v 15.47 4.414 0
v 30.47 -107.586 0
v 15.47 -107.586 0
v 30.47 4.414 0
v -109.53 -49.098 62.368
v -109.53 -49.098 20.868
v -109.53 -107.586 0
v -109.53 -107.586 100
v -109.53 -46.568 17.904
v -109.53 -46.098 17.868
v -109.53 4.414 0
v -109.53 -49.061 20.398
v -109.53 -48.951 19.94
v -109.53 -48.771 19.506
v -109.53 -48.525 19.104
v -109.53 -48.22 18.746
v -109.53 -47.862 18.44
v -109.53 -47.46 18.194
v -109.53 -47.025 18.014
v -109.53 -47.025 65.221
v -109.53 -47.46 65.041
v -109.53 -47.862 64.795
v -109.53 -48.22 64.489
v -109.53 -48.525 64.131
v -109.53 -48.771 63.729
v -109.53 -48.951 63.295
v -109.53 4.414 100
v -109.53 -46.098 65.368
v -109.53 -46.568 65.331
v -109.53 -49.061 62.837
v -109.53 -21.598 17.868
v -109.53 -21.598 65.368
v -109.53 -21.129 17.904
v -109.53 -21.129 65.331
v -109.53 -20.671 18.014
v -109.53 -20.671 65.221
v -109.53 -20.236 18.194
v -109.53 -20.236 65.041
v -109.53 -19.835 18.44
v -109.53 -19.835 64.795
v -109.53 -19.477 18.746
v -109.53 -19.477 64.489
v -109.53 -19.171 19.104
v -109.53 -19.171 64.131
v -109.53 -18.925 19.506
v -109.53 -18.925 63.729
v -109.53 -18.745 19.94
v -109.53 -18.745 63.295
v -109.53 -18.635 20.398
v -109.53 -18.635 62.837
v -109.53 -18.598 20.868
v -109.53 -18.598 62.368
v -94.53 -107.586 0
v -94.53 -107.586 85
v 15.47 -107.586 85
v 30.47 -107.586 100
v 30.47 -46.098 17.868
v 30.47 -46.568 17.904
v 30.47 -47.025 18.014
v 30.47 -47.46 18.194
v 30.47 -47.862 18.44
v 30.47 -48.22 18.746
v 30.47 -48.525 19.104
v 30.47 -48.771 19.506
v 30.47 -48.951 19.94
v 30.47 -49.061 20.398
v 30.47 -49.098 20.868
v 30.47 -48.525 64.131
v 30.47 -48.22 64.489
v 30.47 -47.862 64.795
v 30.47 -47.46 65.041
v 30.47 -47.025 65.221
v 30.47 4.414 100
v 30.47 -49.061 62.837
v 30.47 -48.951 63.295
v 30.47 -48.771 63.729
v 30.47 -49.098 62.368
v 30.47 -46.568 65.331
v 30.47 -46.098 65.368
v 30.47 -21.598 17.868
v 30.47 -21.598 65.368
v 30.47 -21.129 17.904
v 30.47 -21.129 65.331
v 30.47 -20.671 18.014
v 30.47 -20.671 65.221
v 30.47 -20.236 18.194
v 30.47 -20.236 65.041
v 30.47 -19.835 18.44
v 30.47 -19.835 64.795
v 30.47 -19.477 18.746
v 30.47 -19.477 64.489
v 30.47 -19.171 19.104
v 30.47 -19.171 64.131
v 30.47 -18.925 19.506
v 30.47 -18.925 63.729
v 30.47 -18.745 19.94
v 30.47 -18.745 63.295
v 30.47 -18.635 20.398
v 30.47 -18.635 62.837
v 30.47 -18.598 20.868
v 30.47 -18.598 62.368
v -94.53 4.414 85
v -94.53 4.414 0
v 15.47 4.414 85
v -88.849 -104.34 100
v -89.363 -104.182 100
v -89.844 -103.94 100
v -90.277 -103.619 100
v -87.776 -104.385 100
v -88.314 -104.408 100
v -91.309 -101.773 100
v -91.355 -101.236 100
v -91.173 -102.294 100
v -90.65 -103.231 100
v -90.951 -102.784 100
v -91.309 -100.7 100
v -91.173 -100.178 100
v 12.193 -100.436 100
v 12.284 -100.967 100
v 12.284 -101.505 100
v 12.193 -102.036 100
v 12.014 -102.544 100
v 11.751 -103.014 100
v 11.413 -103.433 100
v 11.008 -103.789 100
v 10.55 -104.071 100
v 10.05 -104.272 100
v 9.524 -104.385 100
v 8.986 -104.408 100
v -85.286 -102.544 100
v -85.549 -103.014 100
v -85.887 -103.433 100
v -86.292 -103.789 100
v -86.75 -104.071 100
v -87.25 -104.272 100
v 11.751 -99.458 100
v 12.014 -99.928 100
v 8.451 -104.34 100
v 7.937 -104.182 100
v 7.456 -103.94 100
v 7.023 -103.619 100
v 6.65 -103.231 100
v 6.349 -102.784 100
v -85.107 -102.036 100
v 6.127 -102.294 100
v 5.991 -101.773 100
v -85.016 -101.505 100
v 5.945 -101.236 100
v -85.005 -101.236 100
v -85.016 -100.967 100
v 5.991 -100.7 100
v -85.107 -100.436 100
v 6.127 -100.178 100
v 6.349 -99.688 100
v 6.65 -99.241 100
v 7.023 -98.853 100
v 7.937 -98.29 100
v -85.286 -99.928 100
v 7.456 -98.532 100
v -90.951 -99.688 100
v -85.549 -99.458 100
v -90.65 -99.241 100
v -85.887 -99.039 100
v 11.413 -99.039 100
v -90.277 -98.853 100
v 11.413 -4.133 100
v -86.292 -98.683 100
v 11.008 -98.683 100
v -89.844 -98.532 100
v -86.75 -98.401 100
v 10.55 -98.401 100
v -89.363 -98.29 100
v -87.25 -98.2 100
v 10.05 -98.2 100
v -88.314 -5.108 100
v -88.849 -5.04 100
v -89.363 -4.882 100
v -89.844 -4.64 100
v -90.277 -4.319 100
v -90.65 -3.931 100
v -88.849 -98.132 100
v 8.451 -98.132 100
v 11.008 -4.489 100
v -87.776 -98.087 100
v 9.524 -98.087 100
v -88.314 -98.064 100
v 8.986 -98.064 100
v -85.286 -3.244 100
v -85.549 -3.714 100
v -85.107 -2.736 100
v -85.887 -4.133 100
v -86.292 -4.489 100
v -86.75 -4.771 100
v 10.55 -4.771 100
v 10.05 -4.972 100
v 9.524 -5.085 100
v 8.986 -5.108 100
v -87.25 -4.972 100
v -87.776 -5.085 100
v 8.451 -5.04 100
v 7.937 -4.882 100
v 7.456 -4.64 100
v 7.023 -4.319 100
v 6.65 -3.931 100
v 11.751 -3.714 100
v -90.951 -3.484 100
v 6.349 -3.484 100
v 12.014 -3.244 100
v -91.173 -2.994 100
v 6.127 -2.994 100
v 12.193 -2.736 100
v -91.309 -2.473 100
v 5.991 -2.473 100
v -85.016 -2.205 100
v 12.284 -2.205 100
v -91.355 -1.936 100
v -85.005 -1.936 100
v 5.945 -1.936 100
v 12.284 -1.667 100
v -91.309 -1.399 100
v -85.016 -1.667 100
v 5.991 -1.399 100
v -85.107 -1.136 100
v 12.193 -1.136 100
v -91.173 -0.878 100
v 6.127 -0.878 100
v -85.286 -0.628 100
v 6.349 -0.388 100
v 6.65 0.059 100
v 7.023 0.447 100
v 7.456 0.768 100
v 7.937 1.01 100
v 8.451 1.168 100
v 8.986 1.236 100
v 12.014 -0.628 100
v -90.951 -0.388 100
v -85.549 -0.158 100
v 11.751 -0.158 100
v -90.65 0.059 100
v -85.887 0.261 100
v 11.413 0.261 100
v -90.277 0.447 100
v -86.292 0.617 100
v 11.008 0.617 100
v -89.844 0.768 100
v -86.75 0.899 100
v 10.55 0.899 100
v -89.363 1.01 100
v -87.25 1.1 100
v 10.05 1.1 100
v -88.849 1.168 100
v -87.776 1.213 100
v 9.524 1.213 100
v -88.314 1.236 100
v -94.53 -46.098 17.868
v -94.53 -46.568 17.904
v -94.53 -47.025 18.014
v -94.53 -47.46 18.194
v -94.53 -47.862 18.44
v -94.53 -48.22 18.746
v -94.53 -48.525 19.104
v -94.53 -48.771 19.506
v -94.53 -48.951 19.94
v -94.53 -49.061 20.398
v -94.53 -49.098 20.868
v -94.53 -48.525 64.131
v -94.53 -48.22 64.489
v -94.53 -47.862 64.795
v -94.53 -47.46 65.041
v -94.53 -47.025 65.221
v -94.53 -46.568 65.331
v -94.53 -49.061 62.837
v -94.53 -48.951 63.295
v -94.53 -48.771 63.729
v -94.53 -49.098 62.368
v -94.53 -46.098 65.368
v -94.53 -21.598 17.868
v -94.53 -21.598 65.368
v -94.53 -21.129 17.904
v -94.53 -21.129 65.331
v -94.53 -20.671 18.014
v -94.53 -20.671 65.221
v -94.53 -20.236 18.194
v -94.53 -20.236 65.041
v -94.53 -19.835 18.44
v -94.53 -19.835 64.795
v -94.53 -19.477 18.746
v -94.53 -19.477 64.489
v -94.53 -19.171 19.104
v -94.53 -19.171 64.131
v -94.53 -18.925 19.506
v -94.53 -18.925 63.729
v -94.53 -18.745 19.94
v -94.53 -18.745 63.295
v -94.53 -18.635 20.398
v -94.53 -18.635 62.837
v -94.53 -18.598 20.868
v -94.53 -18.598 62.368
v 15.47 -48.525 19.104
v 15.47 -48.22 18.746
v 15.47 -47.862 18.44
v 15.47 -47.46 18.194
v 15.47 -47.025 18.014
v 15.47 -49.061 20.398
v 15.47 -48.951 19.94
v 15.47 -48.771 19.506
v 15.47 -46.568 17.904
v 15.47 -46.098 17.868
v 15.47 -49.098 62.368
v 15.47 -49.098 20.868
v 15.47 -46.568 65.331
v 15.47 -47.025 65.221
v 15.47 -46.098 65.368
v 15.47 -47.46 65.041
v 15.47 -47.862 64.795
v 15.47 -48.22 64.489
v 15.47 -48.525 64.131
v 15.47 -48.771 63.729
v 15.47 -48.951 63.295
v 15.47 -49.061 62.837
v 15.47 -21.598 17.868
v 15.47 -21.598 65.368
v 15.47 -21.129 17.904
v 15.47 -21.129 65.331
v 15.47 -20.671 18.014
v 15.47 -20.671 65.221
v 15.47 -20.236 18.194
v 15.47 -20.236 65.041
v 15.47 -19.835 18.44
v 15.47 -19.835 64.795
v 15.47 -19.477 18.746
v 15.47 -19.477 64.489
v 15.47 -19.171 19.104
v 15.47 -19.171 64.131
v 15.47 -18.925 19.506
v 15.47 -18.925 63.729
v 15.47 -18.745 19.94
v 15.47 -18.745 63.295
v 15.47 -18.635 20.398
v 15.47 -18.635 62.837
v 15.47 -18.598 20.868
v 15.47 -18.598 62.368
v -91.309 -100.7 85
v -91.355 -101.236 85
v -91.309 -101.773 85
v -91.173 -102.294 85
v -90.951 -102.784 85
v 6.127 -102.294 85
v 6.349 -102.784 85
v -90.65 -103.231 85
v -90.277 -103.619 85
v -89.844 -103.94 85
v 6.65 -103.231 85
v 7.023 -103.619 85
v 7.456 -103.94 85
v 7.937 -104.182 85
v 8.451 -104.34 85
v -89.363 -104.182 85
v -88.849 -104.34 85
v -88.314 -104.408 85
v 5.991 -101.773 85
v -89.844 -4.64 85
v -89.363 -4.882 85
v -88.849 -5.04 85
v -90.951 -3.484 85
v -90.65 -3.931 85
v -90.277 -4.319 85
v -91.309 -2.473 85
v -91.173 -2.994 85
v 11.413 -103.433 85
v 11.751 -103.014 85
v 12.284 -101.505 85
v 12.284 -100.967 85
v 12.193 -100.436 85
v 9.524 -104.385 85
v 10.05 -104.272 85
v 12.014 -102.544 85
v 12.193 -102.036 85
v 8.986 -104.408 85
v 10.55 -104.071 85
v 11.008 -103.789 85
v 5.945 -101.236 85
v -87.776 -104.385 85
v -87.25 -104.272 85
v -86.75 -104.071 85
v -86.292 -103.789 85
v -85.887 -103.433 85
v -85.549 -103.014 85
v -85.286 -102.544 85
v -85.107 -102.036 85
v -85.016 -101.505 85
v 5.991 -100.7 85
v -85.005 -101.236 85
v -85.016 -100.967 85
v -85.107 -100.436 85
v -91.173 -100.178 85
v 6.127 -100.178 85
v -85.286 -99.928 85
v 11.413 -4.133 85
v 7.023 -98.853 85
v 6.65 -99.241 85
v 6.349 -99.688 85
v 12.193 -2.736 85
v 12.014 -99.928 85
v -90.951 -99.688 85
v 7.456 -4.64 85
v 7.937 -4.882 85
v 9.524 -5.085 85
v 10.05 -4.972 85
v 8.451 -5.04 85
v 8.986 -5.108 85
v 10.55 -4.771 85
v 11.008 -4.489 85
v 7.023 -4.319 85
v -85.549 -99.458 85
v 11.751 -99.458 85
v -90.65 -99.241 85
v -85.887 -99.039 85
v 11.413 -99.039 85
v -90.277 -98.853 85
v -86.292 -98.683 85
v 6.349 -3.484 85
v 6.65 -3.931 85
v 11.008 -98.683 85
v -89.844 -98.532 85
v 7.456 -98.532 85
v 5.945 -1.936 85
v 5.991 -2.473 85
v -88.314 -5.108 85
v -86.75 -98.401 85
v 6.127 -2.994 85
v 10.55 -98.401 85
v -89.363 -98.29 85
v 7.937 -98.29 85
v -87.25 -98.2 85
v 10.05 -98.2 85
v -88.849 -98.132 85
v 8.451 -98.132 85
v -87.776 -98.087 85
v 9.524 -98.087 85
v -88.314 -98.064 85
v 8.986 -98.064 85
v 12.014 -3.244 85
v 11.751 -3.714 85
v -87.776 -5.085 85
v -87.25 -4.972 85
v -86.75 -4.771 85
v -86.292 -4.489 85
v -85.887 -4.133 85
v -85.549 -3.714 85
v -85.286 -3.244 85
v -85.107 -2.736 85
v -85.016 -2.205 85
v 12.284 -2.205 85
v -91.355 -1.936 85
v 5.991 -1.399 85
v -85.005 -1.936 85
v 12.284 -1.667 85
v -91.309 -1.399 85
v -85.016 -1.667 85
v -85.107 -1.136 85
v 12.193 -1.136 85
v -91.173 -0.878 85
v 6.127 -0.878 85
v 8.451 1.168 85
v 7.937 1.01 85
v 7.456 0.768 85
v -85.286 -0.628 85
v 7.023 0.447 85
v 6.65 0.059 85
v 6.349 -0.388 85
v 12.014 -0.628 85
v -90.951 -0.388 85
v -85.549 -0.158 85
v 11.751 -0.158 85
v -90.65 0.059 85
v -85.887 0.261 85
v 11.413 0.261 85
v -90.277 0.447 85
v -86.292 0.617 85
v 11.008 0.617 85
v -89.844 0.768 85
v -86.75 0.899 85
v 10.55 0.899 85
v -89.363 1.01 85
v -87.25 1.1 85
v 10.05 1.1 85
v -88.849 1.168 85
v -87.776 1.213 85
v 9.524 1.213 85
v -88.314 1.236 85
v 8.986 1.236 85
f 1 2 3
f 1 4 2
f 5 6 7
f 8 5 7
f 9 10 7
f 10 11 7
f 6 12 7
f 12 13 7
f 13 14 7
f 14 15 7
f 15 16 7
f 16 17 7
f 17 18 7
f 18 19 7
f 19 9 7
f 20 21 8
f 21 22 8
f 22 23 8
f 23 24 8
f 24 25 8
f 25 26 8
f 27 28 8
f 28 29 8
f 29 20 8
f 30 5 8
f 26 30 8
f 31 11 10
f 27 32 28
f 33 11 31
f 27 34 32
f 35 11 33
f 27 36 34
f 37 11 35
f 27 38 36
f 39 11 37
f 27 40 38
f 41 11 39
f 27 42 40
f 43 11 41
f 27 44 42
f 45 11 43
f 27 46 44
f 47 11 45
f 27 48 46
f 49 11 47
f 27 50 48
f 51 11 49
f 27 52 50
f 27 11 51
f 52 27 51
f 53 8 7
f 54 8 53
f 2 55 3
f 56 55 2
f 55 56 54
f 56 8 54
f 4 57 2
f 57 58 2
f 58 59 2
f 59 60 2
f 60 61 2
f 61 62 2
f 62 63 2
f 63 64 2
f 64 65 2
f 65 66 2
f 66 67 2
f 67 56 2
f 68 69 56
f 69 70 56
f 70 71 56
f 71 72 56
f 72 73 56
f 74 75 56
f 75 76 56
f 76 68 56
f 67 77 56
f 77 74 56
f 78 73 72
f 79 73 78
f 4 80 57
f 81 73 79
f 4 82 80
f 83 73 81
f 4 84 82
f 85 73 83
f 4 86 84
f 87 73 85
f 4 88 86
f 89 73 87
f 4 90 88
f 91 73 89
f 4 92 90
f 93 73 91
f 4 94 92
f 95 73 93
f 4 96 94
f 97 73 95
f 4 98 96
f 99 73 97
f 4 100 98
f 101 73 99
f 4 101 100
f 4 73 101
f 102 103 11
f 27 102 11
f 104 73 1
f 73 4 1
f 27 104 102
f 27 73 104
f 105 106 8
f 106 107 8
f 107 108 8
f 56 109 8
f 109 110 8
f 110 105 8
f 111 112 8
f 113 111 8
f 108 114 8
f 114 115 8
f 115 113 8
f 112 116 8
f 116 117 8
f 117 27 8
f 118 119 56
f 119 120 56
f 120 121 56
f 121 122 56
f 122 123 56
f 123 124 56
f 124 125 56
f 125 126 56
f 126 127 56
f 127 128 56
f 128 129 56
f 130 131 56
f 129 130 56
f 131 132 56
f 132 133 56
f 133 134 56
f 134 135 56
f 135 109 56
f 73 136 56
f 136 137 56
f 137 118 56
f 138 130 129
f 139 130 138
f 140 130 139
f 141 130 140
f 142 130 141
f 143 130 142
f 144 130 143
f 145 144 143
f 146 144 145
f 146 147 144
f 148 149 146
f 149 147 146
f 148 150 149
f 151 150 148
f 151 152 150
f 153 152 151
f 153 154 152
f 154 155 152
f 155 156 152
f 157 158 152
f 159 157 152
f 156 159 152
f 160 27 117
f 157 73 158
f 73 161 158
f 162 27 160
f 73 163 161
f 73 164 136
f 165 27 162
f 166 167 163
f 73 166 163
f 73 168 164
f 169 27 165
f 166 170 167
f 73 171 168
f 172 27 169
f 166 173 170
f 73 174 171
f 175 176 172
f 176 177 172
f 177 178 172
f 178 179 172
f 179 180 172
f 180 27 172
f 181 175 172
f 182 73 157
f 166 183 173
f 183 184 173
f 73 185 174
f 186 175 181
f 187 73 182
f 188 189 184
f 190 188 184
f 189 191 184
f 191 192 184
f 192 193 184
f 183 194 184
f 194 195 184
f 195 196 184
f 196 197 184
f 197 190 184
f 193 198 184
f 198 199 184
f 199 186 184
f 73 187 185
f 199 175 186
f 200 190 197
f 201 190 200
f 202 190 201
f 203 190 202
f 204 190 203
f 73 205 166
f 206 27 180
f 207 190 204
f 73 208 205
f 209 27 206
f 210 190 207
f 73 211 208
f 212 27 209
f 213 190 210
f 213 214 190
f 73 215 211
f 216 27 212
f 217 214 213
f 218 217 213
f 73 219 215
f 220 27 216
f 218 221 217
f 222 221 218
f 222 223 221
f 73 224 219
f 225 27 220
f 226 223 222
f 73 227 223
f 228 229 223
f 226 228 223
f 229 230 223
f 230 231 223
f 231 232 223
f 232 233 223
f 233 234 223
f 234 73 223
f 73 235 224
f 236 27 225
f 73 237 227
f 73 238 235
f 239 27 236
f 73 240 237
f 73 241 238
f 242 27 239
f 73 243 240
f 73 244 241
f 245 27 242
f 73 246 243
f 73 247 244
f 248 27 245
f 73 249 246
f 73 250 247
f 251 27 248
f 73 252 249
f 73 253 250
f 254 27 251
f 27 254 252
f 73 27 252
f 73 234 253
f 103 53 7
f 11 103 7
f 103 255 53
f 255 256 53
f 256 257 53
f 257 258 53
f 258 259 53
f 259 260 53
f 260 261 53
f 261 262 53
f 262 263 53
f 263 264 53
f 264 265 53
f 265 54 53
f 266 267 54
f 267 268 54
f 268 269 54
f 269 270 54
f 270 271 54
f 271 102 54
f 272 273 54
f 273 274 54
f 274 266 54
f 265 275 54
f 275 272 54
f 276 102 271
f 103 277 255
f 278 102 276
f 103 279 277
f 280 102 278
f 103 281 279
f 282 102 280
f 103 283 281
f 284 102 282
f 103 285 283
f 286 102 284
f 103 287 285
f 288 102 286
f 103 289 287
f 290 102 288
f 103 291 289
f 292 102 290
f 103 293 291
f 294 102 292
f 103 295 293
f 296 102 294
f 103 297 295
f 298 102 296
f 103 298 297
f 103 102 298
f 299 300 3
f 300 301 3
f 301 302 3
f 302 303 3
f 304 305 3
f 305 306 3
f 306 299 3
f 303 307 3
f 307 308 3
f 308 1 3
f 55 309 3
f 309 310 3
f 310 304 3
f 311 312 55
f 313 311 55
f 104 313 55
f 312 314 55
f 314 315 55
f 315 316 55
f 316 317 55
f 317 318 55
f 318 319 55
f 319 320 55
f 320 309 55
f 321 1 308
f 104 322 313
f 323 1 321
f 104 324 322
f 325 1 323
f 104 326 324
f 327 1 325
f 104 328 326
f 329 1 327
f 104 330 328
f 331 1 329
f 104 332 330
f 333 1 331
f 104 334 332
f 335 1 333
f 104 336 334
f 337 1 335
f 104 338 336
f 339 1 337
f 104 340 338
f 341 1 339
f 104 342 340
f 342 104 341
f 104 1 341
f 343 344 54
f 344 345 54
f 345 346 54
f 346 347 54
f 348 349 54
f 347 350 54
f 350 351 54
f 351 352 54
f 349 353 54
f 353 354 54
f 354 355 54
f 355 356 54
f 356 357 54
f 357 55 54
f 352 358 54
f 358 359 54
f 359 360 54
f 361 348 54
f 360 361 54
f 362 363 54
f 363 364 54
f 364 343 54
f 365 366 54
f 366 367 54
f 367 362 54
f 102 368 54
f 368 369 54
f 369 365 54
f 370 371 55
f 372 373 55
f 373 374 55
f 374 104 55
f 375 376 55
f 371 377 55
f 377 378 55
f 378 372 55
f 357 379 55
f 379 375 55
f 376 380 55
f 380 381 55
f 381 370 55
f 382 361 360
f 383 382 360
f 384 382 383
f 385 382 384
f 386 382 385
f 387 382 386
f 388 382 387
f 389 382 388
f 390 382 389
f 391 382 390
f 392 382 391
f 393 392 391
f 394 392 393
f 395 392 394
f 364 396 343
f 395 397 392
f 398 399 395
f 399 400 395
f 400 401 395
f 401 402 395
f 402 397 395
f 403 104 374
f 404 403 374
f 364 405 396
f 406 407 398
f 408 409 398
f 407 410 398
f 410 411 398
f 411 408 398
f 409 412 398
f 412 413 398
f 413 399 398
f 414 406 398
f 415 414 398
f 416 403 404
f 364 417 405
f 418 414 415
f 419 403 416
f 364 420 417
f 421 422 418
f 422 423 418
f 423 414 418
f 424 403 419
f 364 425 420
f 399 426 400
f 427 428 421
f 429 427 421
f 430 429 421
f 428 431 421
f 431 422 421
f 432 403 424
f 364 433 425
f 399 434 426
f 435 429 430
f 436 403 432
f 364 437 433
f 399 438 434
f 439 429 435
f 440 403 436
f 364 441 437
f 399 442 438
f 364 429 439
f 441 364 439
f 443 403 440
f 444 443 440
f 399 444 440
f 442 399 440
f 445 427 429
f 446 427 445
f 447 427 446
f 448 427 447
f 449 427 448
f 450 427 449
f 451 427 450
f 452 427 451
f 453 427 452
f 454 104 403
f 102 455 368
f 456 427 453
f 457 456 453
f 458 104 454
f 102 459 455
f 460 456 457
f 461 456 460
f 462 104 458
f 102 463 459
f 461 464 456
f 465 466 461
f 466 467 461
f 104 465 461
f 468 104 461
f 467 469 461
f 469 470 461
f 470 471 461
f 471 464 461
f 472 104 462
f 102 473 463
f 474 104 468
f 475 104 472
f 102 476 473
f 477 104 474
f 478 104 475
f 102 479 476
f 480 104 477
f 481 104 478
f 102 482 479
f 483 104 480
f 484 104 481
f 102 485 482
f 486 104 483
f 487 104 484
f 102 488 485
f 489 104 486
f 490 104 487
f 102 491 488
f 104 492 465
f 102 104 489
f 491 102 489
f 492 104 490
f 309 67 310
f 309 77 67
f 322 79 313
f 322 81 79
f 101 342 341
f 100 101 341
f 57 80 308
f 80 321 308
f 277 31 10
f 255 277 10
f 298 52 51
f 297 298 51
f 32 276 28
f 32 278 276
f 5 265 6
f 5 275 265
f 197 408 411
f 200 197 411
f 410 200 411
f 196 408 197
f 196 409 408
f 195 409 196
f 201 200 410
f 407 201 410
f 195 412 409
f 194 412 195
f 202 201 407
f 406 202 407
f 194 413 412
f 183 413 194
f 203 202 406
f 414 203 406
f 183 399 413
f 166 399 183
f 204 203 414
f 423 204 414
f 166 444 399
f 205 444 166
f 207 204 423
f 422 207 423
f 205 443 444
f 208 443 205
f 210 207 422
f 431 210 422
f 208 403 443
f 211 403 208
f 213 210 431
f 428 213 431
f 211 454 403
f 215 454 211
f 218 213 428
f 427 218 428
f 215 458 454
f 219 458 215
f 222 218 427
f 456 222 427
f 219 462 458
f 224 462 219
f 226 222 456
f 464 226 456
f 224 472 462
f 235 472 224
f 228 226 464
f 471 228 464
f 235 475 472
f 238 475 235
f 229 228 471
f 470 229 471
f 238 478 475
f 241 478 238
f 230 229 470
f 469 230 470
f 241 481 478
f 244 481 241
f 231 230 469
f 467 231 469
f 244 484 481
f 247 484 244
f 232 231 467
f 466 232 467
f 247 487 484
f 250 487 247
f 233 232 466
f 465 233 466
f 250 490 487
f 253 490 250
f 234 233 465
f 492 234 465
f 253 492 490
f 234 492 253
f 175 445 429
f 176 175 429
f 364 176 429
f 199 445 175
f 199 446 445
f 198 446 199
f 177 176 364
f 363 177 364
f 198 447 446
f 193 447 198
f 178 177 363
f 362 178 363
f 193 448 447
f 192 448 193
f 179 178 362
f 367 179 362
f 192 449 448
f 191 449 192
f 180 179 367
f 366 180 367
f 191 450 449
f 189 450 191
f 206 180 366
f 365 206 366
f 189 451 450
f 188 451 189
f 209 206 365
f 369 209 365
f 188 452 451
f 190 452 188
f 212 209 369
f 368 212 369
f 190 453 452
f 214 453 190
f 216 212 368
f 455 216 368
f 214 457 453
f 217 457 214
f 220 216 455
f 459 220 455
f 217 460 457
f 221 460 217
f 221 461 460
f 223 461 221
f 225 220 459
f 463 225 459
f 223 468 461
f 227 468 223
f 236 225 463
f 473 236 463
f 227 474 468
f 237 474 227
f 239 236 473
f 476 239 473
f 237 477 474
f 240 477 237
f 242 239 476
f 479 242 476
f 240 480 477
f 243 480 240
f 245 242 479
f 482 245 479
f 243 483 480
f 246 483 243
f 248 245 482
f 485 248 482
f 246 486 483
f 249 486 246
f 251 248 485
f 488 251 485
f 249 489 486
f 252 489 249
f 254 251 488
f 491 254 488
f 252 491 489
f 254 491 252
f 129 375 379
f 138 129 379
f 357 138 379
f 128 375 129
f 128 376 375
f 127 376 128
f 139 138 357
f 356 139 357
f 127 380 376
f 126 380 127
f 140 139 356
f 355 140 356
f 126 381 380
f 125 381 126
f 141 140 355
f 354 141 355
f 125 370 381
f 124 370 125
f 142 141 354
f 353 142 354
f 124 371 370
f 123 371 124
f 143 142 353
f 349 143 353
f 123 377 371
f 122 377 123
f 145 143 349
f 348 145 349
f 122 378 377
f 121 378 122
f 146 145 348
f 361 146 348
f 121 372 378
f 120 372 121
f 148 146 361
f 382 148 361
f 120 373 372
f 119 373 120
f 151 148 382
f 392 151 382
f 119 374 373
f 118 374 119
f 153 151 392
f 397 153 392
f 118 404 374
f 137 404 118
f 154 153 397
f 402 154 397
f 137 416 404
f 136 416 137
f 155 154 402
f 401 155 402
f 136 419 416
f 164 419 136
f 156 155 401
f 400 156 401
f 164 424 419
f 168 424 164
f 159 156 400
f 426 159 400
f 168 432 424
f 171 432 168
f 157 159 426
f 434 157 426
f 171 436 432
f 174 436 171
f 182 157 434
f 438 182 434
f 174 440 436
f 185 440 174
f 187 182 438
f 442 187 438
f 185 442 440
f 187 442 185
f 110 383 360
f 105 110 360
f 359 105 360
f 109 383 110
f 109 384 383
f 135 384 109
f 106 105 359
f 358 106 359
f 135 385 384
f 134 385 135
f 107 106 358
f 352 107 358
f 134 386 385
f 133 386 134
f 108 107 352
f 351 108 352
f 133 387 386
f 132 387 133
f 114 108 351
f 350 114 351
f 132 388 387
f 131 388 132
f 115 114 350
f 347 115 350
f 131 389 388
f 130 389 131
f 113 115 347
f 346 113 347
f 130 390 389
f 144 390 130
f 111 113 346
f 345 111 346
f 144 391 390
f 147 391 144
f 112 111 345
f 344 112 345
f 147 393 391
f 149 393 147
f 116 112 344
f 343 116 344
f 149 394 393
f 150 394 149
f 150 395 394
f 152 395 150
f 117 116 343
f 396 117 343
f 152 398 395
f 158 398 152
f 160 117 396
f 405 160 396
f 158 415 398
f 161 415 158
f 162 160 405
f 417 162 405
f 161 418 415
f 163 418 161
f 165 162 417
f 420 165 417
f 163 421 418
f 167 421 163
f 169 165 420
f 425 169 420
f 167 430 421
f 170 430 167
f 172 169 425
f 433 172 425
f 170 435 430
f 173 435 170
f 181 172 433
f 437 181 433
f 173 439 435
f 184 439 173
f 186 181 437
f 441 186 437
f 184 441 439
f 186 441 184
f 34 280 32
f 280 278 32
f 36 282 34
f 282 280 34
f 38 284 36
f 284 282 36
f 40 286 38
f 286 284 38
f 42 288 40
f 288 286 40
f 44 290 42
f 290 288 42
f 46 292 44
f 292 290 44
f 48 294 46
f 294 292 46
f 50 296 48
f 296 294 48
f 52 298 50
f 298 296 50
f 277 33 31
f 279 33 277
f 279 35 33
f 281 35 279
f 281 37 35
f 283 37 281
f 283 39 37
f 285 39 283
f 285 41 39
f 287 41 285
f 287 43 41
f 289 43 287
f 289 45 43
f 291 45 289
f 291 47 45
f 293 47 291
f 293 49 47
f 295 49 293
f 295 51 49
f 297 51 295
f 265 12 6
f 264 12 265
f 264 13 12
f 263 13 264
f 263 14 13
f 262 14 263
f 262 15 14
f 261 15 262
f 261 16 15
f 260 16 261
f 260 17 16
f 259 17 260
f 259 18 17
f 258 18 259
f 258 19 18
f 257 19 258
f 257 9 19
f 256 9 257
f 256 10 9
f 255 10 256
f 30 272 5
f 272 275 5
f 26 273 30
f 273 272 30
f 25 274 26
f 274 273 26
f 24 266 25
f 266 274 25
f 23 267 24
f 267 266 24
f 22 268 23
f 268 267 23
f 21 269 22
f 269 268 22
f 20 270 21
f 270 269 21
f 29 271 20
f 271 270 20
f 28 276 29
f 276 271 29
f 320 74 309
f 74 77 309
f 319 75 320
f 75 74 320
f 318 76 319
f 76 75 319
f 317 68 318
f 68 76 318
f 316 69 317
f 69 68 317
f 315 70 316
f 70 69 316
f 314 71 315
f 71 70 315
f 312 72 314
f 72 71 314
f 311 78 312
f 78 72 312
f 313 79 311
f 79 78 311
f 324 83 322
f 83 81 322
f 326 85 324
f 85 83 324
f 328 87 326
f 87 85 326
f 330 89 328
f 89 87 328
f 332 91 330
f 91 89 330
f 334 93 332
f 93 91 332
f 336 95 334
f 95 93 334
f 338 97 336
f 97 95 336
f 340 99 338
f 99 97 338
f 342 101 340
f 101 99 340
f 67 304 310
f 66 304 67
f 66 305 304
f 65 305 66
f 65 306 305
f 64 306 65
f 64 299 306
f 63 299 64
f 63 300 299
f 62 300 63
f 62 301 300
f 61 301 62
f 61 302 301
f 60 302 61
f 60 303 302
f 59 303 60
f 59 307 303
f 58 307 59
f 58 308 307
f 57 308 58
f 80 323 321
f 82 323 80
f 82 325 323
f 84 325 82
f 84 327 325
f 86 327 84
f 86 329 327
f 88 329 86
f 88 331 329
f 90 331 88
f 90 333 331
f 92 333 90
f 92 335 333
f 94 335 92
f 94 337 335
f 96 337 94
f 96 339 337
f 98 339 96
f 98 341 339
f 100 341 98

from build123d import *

# Parameters (mm, degrees)
ESQUISSE1_W               = 140
ESQUISSE1_H               = 112
BOSS_EXTRU_1_DEPTH        = 100
ESQUISSE2_W               = 110
ESQUISSE2_H               = 85
ENL_V_MAT_EXTRU_1_DEPTH   = 113
ESQUISSE3_W               = 47.5
ESQUISSE3_H               = 30.5
ENL_V_MAT_EXTRU_2_DEPTH   = 141
ESQUISSE4_R               = 3.175
ENL_V_MAT_EXTRU_3_DEPTH   = 16
SYM_TRIE2_COPY_1_SKETCH_R = 3.175
SYM_TRIE2_COPY_1_DEPTH    = 16
CONG_1_R                  = 3


with BuildPart() as part:
    # Esquisse1 → Boss.-Extru.1 (new body)
    with BuildSketch(Plane.XY):
        with Locations((-39.52963138, -51.586067687)):
            Rectangle(ESQUISSE1_W, ESQUISSE1_H)
    extrude(amount=BOSS_EXTRU_1_DEPTH)

    # Esquisse2 → Enlèv. mat.-Extru.1 (cut, through all)
    with BuildSketch(Plane(origin=(0, 4.413932313, 0), x_dir=(1, 0, 0), z_dir=(0, 1, 0))):
        with Locations((-39.52963138, -42.5)):
            Rectangle(ESQUISSE2_W, ESQUISSE2_H)
    extrude(amount=-ENL_V_MAT_EXTRU_1_DEPTH, mode=Mode.SUBTRACT)

    # Esquisse3 → Enlèv. mat.-Extru.2 (cut, through all)
    with BuildSketch(Plane.ZY.offset(109.52963138)):
        with Locations((41.617518417, -33.84820443)):
            Rectangle(ESQUISSE3_W, ESQUISSE3_H)
    extrude(amount=-ENL_V_MAT_EXTRU_2_DEPTH, mode=Mode.SUBTRACT)

    # Esquisse4 → Enlèv. mat.-Extru.3 (cut, through all)
    with BuildSketch(Plane(origin=(0, 0, 85), x_dir=(-1, 0, 0), z_dir=(0, 0, -1))):
        with Locations((-9.12036862, -1.936067687)):
            Circle(ESQUISSE4_R)
    enl_v_mat_extru_3 = extrude(amount=-ENL_V_MAT_EXTRU_3_DEPTH, mode=Mode.SUBTRACT)

    # Symétrie1: Enlèv. mat.-Extru.3 across plane
    add(enl_v_mat_extru_3.mirror(Plane(origin=(-39.52963138, 0, 0), x_dir=(0, 0, 1), z_dir=(1, 0, 0))), mode=Mode.SUBTRACT)

    # Symétrie2: Enlèv. mat.-Extru.3 across plane
    add(enl_v_mat_extru_3.mirror(Plane(origin=(0, -51.586067687, 0), x_dir=(0, 0, 1), z_dir=(0, -1, 0))), mode=Mode.SUBTRACT)

    # Symétrie2 copy 1 sketch → Symétrie2 copy 1 (cut, through all)
    with BuildSketch(Plane(origin=(-79.05926276, -103.172135375, 85), x_dir=(1, 0, 0), z_dir=(0, 0, -1))):
        with Locations((-9.12036862, -1.936067687)):
            Circle(SYM_TRIE2_COPY_1_SKETCH_R)
    extrude(amount=-SYM_TRIE2_COPY_1_DEPTH, mode=Mode.SUBTRACT)

    # Congé1
    cong_1_edges = [part.edges().sort_by_distance(p)[0] for p in [
        (-102.02963138, -49.09820443, 17.867518417),
        (-102.02963138, -18.59820443, 17.867518417),
        (-102.02963138, -18.59820443, 65.367518417),
        (-102.02963138, -49.09820443, 65.367518417),
        (22.97036862, -49.09820443, 17.867518417),
        (22.97036862, -18.59820443, 17.867518417),
        (22.97036862, -18.59820443, 65.367518417),
        (22.97036862, -49.09820443, 65.367518417),
    ]]
    fillet(cong_1_edges, radius=CONG_1_R)


solid = part.part
